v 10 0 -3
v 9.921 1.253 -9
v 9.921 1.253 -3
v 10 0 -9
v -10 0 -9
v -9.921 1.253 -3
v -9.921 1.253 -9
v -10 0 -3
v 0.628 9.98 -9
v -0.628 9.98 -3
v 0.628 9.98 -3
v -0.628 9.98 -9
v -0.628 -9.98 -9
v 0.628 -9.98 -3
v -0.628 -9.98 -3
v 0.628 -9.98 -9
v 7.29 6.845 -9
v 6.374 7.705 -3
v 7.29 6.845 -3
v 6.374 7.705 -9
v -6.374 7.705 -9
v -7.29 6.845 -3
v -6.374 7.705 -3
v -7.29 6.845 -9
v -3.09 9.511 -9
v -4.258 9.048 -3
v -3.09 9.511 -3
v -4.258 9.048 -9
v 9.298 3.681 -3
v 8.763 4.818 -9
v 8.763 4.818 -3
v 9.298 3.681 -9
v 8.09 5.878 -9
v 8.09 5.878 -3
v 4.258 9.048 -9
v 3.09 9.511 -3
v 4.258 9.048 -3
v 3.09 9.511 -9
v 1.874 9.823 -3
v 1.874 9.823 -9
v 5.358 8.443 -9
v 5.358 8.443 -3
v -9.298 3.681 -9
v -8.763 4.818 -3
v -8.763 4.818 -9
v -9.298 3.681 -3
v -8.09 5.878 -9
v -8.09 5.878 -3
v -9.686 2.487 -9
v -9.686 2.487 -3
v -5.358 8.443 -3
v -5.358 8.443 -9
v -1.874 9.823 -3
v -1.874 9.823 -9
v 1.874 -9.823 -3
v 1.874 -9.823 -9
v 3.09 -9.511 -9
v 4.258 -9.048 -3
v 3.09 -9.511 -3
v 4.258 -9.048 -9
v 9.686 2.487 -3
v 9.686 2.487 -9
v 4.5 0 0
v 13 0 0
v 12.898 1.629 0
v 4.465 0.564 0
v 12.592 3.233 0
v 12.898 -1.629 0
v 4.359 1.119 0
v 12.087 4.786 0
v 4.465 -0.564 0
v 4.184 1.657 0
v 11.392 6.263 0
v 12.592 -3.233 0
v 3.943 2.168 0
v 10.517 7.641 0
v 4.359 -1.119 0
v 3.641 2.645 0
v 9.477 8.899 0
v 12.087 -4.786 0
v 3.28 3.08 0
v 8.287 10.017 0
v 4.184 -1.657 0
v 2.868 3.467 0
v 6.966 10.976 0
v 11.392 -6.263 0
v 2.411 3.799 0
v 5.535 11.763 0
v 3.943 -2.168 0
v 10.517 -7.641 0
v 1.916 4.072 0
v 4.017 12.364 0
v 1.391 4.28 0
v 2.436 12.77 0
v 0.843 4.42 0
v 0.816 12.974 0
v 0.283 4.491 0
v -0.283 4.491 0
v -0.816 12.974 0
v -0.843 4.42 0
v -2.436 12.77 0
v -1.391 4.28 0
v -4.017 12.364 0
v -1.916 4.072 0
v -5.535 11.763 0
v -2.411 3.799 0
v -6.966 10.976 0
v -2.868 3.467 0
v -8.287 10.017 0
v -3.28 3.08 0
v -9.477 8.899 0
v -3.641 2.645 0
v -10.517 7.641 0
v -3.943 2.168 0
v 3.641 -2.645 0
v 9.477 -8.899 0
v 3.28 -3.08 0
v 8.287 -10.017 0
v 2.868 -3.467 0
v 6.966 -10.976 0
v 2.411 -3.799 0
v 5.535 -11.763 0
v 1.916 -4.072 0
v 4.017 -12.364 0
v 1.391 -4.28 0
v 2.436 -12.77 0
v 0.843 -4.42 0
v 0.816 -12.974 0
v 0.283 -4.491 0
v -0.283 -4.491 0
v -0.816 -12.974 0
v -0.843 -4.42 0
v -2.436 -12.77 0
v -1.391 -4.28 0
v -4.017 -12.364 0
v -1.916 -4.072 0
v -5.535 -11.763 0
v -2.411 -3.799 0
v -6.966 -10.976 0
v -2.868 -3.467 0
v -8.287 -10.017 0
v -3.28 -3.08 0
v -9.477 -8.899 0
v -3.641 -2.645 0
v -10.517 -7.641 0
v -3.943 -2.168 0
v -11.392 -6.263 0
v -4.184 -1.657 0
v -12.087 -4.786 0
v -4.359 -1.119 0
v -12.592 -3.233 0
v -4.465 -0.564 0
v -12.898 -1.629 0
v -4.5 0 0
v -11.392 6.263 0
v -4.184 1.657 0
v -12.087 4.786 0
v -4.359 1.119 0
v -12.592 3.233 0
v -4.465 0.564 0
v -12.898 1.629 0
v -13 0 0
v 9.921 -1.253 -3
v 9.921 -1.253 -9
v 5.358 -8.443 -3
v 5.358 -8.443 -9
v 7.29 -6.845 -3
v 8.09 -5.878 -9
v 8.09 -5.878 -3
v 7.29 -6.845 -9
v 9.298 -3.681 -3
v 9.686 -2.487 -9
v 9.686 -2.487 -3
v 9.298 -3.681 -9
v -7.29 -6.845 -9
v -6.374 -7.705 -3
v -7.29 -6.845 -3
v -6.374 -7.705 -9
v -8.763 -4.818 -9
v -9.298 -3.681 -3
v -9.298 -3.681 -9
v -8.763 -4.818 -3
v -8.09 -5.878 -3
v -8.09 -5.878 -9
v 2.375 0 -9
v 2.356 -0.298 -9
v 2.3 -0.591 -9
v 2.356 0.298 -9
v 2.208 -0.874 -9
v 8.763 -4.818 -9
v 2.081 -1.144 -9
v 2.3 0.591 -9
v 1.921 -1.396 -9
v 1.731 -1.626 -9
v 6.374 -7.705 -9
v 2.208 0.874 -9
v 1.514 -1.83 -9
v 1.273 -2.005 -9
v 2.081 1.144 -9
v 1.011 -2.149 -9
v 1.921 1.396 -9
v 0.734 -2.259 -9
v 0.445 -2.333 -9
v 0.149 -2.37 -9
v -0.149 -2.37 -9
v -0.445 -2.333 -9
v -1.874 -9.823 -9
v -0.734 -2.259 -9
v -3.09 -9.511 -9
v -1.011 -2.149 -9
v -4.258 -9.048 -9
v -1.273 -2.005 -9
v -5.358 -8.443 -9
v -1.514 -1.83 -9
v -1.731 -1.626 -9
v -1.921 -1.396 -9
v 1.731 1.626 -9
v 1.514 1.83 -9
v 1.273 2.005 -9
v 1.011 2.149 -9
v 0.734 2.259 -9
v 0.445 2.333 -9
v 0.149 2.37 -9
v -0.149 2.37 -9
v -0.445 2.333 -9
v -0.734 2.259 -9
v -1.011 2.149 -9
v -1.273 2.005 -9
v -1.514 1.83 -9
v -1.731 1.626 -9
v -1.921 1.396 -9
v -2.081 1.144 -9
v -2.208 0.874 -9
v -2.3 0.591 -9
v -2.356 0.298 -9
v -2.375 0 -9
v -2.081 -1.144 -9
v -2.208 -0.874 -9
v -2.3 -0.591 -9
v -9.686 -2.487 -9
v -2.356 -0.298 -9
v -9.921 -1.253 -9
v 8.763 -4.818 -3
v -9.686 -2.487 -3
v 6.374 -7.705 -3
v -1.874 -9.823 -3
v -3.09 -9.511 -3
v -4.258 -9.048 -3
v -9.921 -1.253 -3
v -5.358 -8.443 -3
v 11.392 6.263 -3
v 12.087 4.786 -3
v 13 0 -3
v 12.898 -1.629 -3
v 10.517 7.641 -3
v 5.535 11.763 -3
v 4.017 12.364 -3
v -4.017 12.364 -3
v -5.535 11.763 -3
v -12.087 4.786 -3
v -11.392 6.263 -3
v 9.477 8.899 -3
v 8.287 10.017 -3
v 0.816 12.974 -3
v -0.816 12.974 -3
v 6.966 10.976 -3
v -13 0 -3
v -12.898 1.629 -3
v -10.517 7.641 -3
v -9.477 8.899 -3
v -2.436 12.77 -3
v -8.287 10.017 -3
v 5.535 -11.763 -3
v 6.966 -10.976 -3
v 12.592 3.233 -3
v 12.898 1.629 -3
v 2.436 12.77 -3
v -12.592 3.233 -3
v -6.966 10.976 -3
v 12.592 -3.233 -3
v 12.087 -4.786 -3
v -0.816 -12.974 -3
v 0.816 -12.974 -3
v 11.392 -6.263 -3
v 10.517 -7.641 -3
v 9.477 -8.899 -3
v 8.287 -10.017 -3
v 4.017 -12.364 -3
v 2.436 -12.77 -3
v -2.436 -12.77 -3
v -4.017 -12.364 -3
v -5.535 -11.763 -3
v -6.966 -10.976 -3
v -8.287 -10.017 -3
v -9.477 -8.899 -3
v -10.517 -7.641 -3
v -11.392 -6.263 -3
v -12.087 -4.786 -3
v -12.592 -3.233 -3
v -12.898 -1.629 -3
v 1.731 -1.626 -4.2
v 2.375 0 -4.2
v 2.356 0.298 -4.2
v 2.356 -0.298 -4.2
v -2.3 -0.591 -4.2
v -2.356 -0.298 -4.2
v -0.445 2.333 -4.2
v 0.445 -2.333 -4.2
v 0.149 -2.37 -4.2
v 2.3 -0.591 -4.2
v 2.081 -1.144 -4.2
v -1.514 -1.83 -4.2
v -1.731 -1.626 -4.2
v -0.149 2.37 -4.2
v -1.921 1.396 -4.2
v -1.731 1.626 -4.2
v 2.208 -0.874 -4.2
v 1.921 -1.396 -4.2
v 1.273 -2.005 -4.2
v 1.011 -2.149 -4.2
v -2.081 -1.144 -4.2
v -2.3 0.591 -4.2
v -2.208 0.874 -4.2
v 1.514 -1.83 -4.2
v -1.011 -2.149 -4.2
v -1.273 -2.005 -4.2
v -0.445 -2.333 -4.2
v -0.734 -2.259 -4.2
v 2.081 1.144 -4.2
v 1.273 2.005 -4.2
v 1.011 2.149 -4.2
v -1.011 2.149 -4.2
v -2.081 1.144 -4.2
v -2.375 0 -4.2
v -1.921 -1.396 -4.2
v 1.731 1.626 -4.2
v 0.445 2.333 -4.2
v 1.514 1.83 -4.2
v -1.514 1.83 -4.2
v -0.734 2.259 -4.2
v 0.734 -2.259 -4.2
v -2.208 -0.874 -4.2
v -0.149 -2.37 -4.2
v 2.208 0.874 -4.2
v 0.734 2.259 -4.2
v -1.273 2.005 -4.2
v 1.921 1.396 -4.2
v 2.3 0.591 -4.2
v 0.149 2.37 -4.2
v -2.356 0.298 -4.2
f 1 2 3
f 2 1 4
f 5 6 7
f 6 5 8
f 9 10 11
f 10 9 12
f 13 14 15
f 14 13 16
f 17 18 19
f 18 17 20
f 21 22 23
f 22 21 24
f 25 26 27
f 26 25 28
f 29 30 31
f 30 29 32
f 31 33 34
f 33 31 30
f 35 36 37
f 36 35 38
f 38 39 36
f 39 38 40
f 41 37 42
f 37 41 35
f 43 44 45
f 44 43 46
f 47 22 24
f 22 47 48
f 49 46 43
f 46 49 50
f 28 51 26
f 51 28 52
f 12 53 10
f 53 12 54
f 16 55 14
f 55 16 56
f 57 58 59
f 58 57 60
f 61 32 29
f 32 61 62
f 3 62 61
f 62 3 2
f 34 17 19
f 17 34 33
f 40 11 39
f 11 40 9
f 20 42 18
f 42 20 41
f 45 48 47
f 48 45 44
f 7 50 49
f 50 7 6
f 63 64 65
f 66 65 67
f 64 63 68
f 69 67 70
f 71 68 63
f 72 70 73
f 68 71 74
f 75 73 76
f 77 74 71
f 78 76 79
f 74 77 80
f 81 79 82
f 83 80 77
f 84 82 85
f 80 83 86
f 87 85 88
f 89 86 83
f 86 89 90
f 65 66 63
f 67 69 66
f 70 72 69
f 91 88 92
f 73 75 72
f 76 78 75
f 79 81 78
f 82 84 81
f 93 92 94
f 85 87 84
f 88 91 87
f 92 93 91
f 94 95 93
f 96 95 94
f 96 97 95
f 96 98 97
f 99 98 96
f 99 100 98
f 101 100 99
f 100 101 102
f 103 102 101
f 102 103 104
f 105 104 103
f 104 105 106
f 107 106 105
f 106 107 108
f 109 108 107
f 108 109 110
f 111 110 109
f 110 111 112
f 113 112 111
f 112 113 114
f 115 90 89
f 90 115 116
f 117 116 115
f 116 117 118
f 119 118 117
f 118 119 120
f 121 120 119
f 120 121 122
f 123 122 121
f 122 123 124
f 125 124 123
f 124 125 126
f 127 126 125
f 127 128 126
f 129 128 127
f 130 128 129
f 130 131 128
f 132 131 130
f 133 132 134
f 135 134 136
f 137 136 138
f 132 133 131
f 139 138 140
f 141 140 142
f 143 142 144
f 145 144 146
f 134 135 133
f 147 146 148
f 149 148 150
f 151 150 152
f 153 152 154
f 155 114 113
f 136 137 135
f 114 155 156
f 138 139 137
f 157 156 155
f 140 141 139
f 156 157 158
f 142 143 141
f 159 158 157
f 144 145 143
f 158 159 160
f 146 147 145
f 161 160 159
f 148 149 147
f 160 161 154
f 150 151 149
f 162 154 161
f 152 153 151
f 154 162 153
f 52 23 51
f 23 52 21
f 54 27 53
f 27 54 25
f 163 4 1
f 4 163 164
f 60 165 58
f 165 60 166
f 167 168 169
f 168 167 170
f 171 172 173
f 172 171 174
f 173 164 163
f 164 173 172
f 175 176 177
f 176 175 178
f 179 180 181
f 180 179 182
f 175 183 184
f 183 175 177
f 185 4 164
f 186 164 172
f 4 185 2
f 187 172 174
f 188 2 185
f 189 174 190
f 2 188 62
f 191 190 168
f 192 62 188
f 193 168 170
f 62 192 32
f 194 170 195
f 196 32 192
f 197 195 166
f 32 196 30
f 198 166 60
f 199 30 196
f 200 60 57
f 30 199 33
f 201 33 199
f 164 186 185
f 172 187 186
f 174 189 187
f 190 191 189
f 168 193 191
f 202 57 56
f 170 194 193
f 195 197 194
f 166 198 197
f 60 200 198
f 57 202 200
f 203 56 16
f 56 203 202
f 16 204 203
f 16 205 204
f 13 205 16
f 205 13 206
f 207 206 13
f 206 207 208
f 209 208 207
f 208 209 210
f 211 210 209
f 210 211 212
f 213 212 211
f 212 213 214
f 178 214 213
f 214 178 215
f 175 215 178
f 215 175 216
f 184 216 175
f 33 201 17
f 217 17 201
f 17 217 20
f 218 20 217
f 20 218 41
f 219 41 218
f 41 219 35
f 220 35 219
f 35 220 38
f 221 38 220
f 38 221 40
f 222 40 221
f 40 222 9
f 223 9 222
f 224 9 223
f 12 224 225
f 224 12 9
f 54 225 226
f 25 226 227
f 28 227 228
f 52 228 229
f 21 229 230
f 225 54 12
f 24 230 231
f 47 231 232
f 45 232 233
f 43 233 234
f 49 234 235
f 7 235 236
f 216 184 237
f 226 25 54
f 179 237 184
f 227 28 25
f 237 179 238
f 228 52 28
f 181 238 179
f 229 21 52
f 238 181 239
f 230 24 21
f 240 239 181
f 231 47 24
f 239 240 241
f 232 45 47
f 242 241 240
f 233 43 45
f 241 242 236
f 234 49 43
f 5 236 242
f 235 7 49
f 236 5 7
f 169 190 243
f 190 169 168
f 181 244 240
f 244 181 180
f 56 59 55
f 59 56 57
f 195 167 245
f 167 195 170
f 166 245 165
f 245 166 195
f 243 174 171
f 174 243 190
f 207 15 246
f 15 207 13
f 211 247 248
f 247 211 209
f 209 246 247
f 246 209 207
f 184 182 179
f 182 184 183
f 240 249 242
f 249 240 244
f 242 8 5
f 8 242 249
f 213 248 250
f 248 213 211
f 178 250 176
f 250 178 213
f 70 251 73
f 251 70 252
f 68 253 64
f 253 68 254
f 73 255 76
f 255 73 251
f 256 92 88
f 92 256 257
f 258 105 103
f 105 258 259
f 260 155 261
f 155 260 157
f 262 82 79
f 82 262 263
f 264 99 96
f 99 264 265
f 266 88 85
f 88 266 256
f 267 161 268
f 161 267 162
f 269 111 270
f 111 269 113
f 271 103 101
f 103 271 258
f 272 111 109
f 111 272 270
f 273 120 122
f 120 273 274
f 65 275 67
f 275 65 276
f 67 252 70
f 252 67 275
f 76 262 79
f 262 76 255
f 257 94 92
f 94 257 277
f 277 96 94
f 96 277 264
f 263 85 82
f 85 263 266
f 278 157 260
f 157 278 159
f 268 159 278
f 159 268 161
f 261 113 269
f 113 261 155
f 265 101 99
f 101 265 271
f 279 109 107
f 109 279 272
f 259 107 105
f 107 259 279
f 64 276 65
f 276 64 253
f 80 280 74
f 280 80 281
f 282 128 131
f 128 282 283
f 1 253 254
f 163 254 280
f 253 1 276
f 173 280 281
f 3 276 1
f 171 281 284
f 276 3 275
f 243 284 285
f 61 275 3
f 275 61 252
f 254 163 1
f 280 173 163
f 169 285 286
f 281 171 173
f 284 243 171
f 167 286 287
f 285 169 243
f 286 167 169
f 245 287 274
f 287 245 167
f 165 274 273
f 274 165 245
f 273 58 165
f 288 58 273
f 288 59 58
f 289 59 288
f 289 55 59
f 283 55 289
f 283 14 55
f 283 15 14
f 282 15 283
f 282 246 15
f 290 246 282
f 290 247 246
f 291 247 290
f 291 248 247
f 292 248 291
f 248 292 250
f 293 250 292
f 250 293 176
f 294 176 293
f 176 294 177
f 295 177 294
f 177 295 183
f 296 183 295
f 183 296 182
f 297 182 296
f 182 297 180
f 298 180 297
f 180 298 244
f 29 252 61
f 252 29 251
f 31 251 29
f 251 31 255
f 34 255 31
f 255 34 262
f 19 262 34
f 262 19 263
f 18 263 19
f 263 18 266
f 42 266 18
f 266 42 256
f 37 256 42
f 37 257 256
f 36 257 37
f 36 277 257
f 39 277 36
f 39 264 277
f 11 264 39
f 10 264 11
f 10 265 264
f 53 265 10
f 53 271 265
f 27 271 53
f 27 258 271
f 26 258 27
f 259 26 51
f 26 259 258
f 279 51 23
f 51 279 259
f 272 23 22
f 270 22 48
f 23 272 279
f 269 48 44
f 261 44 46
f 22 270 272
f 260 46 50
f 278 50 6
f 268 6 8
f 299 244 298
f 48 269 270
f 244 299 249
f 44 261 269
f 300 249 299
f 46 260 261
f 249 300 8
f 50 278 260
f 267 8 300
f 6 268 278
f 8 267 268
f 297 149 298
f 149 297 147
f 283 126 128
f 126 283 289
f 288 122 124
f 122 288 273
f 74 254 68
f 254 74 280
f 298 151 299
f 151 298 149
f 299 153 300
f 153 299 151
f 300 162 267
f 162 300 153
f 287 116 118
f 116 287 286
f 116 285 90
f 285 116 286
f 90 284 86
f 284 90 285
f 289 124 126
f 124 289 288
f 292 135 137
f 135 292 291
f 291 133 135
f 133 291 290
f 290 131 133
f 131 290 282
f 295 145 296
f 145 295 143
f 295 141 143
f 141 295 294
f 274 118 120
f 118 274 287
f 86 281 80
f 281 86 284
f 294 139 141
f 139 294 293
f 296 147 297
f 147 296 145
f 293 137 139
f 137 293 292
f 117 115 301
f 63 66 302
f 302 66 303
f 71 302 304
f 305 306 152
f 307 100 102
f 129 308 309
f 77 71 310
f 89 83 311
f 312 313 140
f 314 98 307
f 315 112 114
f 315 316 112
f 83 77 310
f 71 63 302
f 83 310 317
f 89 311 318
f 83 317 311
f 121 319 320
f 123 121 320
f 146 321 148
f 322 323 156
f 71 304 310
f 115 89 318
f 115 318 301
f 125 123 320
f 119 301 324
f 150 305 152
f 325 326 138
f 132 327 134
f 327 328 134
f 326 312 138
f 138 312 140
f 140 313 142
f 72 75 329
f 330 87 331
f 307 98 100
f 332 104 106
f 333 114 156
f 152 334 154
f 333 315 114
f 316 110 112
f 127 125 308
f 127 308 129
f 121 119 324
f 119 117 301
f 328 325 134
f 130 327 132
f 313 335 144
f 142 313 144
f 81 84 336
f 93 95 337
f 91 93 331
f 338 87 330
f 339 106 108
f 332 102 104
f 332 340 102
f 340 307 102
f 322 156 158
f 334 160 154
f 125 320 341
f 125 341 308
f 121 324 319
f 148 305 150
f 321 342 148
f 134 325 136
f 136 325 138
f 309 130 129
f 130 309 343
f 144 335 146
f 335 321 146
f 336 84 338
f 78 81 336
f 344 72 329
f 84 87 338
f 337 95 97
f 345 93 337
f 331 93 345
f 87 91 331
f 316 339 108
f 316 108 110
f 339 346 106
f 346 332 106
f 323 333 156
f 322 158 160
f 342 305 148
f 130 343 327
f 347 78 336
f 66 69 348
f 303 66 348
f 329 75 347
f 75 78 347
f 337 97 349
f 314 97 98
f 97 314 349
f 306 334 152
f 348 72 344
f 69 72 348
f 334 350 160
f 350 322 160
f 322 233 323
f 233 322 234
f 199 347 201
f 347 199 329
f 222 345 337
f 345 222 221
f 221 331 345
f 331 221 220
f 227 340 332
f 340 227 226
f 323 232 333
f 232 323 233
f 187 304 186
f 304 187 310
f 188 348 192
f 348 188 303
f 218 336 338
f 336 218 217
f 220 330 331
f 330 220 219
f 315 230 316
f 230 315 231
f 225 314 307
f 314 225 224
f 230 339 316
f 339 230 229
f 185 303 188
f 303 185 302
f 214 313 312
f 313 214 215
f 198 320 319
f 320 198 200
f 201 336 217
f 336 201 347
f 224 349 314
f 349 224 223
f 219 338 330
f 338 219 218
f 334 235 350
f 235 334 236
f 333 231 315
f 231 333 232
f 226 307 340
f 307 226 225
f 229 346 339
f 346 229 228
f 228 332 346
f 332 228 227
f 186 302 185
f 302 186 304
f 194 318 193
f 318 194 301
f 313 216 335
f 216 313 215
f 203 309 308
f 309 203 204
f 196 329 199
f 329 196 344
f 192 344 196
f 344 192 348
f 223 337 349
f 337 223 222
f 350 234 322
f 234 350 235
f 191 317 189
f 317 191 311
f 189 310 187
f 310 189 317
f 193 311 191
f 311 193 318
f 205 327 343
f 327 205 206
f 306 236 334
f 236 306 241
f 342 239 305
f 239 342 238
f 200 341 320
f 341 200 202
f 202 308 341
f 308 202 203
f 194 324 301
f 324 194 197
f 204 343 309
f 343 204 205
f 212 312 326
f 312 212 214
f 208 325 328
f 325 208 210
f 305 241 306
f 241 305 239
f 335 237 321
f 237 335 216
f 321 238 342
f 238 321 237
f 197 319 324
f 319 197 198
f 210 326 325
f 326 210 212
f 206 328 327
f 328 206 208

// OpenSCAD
$fn = 50;


difference() {
	union() {
		translate(v = [0, 0, -9.0000000000]) {
			cylinder(h = 9, r = 10.0000000000);
		}
		translate(v = [0, 0, -3.0000000000]) {
			cylinder(h = 3, r = 13.0000000000);
		}
	}
	union() {
		translate(v = [0, 0, 0]) {
			rotate(a = [0, 0, 0]) {
				difference() {
					union() {
						#translate(v = [0, 0, -9.0000000000]) {
							cylinder(h = 9, r = 2.2500000000);
						}
						#translate(v = [0, 0, -4.2000000000]) {
							cylinder(h = 4.2000000000, r1 = 2.3750000000, r2 = 4.5000000000);
						}
						#translate(v = [0, 0, -9.0000000000]) {
							cylinder(h = 9, r = 2.3750000000);
						}
						#translate(v = [0, 0, -9.0000000000]) {
							cylinder(h = 9, r = 2.2500000000);
						}
					}
					union();
				}
			}
		}
	}
}
